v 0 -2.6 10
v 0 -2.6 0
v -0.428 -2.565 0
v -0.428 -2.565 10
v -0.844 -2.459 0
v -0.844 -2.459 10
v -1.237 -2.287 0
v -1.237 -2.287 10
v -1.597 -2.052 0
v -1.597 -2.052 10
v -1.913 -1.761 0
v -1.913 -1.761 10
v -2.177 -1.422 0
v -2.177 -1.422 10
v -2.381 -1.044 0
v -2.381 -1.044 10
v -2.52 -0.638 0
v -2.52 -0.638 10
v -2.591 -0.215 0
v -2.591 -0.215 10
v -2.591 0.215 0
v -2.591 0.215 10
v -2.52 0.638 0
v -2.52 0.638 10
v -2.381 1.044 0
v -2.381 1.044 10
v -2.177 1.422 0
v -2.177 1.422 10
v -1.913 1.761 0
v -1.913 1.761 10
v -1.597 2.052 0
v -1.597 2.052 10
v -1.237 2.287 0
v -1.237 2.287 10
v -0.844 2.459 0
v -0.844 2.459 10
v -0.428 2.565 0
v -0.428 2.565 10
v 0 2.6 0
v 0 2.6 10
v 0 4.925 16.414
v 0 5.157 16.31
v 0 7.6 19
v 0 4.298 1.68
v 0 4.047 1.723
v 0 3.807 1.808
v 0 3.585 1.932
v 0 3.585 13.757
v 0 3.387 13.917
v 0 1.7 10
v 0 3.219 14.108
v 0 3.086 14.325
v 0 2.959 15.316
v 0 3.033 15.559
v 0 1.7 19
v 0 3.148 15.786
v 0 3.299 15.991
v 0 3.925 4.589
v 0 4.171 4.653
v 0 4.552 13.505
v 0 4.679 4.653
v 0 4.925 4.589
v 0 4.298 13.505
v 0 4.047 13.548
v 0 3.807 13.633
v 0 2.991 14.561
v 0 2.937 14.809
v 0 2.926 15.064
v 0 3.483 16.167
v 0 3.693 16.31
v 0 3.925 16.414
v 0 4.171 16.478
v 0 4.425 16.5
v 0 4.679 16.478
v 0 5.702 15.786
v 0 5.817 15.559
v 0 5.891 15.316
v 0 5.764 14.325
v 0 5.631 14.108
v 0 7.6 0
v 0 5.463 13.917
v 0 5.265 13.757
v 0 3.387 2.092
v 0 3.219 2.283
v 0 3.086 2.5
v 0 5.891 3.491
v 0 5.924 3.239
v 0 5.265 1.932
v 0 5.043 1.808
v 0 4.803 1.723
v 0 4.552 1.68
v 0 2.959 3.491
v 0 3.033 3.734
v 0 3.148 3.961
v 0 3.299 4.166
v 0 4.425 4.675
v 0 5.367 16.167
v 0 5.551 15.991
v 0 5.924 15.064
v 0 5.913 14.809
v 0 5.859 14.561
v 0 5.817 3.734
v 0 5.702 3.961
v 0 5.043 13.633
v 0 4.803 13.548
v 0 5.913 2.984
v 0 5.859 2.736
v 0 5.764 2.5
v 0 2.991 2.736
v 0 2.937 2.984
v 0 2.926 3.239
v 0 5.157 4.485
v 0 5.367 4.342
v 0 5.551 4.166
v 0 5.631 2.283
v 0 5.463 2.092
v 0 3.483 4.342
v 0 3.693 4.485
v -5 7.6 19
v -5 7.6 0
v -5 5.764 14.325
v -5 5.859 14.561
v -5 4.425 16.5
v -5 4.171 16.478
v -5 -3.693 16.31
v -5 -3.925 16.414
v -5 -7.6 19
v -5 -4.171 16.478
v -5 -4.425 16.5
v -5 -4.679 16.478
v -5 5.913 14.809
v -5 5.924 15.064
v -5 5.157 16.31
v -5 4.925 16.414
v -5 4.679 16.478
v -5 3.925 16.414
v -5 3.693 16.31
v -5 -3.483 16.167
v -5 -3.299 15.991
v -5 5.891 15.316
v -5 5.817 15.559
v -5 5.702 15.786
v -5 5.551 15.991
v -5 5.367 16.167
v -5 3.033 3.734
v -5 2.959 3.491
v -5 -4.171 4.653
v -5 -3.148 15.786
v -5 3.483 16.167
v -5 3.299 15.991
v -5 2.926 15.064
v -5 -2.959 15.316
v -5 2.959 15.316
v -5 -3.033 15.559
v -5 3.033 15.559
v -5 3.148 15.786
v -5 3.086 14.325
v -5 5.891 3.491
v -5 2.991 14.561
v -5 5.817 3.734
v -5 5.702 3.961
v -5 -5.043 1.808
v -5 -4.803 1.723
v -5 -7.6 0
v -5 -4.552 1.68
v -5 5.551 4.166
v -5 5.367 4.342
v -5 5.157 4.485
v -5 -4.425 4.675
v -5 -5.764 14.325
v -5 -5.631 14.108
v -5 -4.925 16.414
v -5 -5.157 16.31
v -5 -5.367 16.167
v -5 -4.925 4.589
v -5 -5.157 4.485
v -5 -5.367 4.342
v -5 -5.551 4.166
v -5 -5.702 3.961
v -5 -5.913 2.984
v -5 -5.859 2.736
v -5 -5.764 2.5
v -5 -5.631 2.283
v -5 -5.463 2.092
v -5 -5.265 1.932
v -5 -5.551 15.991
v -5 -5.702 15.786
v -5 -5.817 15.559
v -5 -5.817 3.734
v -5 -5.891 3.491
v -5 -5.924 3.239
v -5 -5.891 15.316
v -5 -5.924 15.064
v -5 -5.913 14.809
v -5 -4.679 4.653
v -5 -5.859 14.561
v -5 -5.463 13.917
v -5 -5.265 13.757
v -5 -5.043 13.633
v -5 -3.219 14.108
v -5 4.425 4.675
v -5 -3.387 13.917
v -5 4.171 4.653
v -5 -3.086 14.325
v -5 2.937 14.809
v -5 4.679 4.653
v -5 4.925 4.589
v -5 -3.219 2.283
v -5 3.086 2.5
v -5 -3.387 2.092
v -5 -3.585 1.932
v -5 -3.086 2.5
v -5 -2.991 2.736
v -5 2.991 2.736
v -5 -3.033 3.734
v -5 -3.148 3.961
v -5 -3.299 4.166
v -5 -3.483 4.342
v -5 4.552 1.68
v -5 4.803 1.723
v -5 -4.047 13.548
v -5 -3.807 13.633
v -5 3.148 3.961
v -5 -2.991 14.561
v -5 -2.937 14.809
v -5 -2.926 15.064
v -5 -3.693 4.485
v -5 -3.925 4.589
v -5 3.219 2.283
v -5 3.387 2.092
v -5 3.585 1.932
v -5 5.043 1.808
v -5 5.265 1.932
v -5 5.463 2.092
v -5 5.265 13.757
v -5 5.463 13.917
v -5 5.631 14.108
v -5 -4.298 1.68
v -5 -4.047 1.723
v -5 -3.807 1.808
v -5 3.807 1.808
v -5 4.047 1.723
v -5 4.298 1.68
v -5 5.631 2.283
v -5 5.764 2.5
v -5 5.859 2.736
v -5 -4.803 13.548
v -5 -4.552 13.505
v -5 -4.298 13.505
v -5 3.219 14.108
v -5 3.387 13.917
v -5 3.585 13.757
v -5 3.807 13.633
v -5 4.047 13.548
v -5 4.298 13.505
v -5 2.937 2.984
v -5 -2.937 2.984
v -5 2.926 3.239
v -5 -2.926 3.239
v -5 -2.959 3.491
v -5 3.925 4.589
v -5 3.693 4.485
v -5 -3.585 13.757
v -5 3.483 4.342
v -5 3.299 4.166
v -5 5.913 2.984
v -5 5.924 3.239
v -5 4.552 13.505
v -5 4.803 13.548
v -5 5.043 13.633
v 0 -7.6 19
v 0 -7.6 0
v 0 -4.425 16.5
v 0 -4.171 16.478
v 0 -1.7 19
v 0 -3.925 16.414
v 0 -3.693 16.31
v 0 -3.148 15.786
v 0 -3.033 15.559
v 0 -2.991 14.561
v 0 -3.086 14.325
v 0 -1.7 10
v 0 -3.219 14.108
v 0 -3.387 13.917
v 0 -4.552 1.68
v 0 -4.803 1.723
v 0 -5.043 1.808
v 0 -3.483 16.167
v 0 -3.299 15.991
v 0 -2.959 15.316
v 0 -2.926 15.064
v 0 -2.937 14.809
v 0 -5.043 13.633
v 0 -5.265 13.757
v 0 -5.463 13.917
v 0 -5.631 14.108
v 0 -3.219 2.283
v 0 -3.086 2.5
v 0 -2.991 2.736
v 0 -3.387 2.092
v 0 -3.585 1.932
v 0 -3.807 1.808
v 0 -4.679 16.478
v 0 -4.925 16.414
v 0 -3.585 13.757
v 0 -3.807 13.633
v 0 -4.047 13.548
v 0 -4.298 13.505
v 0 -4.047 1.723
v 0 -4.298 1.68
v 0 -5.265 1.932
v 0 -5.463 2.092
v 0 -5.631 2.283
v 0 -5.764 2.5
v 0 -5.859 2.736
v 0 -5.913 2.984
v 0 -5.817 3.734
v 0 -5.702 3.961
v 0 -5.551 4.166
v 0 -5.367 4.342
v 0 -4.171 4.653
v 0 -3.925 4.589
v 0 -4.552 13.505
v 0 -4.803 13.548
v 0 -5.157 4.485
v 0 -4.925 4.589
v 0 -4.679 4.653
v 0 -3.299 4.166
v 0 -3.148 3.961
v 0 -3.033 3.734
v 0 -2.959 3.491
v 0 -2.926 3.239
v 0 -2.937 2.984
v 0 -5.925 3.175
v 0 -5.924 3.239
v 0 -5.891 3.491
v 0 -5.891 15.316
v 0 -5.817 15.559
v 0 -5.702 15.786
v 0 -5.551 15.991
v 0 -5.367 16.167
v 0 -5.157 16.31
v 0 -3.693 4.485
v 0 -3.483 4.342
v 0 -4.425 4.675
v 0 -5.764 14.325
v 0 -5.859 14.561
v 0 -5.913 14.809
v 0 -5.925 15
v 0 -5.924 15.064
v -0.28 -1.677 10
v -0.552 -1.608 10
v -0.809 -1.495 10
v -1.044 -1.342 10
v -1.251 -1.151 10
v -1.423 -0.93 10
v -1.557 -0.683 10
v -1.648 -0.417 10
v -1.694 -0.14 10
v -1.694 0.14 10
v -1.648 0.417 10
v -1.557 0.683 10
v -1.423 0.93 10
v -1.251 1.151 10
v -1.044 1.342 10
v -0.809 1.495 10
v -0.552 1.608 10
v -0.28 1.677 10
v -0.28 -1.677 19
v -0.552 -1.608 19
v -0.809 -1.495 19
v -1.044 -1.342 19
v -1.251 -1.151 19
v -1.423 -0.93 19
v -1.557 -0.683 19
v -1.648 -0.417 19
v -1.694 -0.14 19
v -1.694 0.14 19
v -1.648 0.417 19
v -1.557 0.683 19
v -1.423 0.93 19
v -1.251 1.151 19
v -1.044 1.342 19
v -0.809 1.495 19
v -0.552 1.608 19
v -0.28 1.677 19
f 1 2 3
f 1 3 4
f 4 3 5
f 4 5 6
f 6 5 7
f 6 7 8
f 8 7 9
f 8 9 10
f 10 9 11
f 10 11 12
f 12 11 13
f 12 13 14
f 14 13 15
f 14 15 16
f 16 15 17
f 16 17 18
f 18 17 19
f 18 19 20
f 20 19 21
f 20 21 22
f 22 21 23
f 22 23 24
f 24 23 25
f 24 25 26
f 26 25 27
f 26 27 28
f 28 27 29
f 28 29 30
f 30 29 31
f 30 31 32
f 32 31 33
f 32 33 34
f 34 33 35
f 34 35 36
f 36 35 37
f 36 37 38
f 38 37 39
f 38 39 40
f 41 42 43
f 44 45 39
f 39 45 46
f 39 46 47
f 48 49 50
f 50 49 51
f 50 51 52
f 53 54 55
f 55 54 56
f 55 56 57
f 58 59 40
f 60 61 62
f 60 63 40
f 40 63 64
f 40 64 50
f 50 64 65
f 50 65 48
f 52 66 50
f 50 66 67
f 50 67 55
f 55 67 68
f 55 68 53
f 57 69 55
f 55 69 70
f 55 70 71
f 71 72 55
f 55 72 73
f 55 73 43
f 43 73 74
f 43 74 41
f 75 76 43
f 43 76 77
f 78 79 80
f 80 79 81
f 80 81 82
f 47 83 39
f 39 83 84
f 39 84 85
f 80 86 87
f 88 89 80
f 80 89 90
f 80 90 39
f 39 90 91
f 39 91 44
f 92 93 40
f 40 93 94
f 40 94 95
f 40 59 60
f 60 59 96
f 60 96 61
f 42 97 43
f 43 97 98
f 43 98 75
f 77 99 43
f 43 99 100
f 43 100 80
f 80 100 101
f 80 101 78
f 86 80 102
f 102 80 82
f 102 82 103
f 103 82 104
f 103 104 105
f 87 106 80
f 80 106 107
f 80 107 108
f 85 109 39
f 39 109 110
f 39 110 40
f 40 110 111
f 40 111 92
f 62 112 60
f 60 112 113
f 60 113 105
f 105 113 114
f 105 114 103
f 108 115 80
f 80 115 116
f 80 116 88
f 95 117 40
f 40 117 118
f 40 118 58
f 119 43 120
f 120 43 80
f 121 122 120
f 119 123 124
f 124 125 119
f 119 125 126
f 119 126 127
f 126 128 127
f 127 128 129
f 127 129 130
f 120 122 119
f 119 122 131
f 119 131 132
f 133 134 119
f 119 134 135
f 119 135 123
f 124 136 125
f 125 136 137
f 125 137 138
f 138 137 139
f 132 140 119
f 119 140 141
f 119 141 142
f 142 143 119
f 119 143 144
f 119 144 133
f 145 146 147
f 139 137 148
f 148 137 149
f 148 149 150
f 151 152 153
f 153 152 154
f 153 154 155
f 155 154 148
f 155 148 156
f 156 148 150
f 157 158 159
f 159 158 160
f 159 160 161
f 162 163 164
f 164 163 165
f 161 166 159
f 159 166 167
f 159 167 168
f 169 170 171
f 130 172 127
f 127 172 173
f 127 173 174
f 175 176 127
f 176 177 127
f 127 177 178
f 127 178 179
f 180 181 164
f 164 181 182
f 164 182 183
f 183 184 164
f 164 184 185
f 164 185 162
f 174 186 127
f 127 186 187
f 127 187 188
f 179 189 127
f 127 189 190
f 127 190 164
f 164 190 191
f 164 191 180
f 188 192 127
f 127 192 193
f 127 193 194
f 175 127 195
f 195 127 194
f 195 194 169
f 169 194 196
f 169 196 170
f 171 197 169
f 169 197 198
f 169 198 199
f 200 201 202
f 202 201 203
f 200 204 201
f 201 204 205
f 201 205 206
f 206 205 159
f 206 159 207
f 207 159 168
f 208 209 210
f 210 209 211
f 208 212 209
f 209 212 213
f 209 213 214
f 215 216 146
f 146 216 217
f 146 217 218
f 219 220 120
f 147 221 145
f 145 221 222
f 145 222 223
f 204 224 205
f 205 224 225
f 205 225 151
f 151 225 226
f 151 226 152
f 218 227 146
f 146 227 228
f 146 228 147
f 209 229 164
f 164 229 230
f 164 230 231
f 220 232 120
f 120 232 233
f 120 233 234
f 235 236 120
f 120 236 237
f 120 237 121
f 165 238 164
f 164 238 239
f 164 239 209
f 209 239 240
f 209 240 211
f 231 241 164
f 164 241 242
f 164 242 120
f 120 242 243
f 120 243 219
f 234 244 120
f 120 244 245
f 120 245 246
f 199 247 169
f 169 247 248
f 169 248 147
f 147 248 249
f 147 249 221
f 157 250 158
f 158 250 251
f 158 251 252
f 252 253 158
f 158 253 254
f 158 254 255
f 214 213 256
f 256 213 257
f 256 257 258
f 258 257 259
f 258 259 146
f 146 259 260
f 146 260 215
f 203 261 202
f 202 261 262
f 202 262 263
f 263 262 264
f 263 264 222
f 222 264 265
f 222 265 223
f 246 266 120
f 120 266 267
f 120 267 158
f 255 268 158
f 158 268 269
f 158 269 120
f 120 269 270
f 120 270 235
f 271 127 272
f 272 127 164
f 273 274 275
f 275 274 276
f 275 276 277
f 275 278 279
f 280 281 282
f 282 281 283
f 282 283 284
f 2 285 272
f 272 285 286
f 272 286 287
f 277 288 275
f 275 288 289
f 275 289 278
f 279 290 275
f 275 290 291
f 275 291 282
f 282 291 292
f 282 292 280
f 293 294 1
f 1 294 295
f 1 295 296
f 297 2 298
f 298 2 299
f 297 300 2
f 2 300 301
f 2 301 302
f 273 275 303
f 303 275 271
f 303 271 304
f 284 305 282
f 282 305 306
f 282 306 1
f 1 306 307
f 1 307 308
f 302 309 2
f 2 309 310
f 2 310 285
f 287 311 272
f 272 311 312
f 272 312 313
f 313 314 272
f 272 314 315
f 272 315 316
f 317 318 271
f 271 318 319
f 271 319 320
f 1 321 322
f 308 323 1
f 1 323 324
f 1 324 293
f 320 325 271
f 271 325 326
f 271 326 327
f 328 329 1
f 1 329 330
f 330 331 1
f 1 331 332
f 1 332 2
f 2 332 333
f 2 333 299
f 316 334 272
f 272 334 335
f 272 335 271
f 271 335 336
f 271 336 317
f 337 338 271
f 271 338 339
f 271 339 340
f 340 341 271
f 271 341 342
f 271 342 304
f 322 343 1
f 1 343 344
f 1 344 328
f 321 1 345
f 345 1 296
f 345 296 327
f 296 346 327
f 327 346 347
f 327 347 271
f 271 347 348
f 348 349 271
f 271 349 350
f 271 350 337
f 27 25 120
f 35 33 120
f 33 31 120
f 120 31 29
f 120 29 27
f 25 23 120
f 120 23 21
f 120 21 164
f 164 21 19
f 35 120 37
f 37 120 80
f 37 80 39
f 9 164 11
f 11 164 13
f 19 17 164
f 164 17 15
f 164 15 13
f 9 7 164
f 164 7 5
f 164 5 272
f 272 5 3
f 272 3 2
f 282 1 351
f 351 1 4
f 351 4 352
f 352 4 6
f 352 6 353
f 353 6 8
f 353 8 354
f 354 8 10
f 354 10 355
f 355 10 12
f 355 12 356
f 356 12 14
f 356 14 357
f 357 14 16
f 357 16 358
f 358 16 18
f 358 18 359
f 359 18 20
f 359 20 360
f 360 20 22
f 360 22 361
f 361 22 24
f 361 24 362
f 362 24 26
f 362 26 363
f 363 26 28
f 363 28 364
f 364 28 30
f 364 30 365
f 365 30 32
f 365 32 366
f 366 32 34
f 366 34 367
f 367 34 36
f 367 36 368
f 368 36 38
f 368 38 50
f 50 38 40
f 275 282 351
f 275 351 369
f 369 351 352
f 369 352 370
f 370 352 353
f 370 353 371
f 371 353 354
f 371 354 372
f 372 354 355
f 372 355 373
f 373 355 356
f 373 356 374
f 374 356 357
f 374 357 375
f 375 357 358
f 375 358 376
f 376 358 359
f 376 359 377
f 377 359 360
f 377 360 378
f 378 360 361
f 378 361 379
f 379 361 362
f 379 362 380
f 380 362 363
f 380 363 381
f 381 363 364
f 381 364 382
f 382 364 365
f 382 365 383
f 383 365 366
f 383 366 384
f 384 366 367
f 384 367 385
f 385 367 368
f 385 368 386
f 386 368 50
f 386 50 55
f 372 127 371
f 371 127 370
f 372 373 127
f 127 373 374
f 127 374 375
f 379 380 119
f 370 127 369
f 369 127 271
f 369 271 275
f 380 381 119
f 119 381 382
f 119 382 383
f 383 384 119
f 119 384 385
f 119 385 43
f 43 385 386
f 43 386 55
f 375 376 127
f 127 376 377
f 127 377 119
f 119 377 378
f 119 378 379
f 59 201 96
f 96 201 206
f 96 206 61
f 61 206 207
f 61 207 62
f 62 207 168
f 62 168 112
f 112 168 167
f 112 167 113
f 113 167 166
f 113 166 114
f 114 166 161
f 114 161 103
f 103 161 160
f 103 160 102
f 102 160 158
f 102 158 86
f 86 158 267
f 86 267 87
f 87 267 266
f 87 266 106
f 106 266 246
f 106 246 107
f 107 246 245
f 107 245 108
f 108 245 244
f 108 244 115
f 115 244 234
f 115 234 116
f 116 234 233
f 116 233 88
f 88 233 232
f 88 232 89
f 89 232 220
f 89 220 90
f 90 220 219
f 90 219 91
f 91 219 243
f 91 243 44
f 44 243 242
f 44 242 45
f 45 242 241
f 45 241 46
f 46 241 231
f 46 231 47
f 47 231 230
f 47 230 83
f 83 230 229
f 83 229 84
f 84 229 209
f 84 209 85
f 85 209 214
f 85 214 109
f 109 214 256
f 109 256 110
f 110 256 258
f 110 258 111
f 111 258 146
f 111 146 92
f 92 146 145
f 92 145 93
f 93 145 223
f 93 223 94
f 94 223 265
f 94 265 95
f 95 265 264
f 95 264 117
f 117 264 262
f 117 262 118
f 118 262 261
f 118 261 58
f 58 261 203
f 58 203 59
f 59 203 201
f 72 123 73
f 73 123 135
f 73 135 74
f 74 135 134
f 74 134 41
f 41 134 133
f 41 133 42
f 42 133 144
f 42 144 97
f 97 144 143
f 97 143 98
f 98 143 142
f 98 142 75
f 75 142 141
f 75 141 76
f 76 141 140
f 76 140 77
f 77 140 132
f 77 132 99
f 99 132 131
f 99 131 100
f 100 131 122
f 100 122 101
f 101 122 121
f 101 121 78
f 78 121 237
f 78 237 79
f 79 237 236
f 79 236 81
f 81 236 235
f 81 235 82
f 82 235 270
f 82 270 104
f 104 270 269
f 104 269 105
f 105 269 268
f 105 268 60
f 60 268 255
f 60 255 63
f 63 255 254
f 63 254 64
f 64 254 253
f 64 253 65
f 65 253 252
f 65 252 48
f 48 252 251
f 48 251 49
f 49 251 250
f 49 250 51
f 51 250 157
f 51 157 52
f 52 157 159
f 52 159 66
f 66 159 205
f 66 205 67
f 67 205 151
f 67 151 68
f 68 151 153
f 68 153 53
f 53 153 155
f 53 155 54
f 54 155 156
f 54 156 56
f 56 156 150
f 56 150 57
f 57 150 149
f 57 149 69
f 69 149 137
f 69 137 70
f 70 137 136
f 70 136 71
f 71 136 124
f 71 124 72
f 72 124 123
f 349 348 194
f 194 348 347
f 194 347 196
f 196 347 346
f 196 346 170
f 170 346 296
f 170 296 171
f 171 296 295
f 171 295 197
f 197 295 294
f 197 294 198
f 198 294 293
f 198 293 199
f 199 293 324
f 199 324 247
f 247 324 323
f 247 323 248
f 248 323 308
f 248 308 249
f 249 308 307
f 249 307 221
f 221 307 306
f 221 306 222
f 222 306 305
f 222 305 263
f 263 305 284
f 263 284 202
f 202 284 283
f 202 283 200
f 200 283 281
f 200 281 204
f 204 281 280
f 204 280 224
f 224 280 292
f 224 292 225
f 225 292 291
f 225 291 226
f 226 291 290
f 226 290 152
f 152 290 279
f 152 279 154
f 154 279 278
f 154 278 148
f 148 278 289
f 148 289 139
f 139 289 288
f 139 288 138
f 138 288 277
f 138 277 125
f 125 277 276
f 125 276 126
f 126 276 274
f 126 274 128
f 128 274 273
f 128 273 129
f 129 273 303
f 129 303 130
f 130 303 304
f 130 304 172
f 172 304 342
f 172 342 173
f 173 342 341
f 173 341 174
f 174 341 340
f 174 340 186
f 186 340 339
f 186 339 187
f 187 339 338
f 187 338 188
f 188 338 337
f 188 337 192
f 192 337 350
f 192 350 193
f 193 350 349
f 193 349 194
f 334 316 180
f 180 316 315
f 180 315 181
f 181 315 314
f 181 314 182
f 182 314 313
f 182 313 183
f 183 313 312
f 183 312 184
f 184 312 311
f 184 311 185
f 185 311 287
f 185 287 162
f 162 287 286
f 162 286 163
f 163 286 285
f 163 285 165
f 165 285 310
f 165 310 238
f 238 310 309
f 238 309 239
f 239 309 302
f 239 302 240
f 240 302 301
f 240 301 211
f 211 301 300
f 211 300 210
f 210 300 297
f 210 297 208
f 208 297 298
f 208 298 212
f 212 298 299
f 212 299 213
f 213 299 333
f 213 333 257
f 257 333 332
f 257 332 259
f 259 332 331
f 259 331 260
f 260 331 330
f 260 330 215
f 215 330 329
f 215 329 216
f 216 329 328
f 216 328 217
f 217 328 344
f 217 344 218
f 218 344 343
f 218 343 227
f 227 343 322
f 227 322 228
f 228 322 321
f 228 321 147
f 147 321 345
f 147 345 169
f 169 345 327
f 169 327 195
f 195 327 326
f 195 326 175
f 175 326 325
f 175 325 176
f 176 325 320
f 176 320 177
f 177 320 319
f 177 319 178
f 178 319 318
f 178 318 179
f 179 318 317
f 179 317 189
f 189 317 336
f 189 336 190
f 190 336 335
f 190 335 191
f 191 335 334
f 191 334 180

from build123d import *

# Parameters (mm, degrees)
EXTRUDE1_DEPTH = 10
EXTRUDE2_DEPTH = 9
SKETCH4_R      = 1.5
EXTRUDE3_DEPTH = 6


with BuildPart() as part:
    # Sketch1 → Extrude1 (new body)
    with BuildSketch(Plane.XY):
        with BuildLine():
            Line((0, 2.6), (0, 7.6))
            Line((0, 7.6), (-5, 7.6))
            Line((-5, 7.6), (-5, -7.6))
            Line((-5, -7.6), (0, -7.6))
            Line((0, -7.6), (0, -2.6))
            ThreePointArc((0, -2.6), (-2.6, 0), (0, 2.6))
        make_face()
    extrude(amount=EXTRUDE1_DEPTH)

    # Sketch2 → Extrude2 (add)
    with BuildSketch(Plane.XY.offset(10)):
        with BuildLine():
            Line((0, 1.7), (0, 7.6))
            Line((0, 7.6), (-5, 7.6))
            Line((-5, 7.6), (-5, -7.6))
            Line((-5, -7.6), (0, -7.6))
            Line((0, -7.6), (0, -1.7))
            ThreePointArc((0, -1.7), (-1.7, 0), (0, 1.7))
        make_face()
    extrude(amount=EXTRUDE2_DEPTH)

    # Sketch4 → Extrude3 (cut, through all)
    with BuildSketch(Plane.ZY.offset(5)):
        with Locations((3.175, 4.425)):
            Circle(SKETCH4_R)
        with Locations((15, 4.425)):
            Circle(SKETCH4_R)
        with Locations((15, -4.425)):
            Circle(SKETCH4_R)
        with Locations((3.175, -4.425)):
            Circle(SKETCH4_R)
    extrude(amount=-EXTRUDE3_DEPTH, mode=Mode.SUBTRACT)


solid = part.part
